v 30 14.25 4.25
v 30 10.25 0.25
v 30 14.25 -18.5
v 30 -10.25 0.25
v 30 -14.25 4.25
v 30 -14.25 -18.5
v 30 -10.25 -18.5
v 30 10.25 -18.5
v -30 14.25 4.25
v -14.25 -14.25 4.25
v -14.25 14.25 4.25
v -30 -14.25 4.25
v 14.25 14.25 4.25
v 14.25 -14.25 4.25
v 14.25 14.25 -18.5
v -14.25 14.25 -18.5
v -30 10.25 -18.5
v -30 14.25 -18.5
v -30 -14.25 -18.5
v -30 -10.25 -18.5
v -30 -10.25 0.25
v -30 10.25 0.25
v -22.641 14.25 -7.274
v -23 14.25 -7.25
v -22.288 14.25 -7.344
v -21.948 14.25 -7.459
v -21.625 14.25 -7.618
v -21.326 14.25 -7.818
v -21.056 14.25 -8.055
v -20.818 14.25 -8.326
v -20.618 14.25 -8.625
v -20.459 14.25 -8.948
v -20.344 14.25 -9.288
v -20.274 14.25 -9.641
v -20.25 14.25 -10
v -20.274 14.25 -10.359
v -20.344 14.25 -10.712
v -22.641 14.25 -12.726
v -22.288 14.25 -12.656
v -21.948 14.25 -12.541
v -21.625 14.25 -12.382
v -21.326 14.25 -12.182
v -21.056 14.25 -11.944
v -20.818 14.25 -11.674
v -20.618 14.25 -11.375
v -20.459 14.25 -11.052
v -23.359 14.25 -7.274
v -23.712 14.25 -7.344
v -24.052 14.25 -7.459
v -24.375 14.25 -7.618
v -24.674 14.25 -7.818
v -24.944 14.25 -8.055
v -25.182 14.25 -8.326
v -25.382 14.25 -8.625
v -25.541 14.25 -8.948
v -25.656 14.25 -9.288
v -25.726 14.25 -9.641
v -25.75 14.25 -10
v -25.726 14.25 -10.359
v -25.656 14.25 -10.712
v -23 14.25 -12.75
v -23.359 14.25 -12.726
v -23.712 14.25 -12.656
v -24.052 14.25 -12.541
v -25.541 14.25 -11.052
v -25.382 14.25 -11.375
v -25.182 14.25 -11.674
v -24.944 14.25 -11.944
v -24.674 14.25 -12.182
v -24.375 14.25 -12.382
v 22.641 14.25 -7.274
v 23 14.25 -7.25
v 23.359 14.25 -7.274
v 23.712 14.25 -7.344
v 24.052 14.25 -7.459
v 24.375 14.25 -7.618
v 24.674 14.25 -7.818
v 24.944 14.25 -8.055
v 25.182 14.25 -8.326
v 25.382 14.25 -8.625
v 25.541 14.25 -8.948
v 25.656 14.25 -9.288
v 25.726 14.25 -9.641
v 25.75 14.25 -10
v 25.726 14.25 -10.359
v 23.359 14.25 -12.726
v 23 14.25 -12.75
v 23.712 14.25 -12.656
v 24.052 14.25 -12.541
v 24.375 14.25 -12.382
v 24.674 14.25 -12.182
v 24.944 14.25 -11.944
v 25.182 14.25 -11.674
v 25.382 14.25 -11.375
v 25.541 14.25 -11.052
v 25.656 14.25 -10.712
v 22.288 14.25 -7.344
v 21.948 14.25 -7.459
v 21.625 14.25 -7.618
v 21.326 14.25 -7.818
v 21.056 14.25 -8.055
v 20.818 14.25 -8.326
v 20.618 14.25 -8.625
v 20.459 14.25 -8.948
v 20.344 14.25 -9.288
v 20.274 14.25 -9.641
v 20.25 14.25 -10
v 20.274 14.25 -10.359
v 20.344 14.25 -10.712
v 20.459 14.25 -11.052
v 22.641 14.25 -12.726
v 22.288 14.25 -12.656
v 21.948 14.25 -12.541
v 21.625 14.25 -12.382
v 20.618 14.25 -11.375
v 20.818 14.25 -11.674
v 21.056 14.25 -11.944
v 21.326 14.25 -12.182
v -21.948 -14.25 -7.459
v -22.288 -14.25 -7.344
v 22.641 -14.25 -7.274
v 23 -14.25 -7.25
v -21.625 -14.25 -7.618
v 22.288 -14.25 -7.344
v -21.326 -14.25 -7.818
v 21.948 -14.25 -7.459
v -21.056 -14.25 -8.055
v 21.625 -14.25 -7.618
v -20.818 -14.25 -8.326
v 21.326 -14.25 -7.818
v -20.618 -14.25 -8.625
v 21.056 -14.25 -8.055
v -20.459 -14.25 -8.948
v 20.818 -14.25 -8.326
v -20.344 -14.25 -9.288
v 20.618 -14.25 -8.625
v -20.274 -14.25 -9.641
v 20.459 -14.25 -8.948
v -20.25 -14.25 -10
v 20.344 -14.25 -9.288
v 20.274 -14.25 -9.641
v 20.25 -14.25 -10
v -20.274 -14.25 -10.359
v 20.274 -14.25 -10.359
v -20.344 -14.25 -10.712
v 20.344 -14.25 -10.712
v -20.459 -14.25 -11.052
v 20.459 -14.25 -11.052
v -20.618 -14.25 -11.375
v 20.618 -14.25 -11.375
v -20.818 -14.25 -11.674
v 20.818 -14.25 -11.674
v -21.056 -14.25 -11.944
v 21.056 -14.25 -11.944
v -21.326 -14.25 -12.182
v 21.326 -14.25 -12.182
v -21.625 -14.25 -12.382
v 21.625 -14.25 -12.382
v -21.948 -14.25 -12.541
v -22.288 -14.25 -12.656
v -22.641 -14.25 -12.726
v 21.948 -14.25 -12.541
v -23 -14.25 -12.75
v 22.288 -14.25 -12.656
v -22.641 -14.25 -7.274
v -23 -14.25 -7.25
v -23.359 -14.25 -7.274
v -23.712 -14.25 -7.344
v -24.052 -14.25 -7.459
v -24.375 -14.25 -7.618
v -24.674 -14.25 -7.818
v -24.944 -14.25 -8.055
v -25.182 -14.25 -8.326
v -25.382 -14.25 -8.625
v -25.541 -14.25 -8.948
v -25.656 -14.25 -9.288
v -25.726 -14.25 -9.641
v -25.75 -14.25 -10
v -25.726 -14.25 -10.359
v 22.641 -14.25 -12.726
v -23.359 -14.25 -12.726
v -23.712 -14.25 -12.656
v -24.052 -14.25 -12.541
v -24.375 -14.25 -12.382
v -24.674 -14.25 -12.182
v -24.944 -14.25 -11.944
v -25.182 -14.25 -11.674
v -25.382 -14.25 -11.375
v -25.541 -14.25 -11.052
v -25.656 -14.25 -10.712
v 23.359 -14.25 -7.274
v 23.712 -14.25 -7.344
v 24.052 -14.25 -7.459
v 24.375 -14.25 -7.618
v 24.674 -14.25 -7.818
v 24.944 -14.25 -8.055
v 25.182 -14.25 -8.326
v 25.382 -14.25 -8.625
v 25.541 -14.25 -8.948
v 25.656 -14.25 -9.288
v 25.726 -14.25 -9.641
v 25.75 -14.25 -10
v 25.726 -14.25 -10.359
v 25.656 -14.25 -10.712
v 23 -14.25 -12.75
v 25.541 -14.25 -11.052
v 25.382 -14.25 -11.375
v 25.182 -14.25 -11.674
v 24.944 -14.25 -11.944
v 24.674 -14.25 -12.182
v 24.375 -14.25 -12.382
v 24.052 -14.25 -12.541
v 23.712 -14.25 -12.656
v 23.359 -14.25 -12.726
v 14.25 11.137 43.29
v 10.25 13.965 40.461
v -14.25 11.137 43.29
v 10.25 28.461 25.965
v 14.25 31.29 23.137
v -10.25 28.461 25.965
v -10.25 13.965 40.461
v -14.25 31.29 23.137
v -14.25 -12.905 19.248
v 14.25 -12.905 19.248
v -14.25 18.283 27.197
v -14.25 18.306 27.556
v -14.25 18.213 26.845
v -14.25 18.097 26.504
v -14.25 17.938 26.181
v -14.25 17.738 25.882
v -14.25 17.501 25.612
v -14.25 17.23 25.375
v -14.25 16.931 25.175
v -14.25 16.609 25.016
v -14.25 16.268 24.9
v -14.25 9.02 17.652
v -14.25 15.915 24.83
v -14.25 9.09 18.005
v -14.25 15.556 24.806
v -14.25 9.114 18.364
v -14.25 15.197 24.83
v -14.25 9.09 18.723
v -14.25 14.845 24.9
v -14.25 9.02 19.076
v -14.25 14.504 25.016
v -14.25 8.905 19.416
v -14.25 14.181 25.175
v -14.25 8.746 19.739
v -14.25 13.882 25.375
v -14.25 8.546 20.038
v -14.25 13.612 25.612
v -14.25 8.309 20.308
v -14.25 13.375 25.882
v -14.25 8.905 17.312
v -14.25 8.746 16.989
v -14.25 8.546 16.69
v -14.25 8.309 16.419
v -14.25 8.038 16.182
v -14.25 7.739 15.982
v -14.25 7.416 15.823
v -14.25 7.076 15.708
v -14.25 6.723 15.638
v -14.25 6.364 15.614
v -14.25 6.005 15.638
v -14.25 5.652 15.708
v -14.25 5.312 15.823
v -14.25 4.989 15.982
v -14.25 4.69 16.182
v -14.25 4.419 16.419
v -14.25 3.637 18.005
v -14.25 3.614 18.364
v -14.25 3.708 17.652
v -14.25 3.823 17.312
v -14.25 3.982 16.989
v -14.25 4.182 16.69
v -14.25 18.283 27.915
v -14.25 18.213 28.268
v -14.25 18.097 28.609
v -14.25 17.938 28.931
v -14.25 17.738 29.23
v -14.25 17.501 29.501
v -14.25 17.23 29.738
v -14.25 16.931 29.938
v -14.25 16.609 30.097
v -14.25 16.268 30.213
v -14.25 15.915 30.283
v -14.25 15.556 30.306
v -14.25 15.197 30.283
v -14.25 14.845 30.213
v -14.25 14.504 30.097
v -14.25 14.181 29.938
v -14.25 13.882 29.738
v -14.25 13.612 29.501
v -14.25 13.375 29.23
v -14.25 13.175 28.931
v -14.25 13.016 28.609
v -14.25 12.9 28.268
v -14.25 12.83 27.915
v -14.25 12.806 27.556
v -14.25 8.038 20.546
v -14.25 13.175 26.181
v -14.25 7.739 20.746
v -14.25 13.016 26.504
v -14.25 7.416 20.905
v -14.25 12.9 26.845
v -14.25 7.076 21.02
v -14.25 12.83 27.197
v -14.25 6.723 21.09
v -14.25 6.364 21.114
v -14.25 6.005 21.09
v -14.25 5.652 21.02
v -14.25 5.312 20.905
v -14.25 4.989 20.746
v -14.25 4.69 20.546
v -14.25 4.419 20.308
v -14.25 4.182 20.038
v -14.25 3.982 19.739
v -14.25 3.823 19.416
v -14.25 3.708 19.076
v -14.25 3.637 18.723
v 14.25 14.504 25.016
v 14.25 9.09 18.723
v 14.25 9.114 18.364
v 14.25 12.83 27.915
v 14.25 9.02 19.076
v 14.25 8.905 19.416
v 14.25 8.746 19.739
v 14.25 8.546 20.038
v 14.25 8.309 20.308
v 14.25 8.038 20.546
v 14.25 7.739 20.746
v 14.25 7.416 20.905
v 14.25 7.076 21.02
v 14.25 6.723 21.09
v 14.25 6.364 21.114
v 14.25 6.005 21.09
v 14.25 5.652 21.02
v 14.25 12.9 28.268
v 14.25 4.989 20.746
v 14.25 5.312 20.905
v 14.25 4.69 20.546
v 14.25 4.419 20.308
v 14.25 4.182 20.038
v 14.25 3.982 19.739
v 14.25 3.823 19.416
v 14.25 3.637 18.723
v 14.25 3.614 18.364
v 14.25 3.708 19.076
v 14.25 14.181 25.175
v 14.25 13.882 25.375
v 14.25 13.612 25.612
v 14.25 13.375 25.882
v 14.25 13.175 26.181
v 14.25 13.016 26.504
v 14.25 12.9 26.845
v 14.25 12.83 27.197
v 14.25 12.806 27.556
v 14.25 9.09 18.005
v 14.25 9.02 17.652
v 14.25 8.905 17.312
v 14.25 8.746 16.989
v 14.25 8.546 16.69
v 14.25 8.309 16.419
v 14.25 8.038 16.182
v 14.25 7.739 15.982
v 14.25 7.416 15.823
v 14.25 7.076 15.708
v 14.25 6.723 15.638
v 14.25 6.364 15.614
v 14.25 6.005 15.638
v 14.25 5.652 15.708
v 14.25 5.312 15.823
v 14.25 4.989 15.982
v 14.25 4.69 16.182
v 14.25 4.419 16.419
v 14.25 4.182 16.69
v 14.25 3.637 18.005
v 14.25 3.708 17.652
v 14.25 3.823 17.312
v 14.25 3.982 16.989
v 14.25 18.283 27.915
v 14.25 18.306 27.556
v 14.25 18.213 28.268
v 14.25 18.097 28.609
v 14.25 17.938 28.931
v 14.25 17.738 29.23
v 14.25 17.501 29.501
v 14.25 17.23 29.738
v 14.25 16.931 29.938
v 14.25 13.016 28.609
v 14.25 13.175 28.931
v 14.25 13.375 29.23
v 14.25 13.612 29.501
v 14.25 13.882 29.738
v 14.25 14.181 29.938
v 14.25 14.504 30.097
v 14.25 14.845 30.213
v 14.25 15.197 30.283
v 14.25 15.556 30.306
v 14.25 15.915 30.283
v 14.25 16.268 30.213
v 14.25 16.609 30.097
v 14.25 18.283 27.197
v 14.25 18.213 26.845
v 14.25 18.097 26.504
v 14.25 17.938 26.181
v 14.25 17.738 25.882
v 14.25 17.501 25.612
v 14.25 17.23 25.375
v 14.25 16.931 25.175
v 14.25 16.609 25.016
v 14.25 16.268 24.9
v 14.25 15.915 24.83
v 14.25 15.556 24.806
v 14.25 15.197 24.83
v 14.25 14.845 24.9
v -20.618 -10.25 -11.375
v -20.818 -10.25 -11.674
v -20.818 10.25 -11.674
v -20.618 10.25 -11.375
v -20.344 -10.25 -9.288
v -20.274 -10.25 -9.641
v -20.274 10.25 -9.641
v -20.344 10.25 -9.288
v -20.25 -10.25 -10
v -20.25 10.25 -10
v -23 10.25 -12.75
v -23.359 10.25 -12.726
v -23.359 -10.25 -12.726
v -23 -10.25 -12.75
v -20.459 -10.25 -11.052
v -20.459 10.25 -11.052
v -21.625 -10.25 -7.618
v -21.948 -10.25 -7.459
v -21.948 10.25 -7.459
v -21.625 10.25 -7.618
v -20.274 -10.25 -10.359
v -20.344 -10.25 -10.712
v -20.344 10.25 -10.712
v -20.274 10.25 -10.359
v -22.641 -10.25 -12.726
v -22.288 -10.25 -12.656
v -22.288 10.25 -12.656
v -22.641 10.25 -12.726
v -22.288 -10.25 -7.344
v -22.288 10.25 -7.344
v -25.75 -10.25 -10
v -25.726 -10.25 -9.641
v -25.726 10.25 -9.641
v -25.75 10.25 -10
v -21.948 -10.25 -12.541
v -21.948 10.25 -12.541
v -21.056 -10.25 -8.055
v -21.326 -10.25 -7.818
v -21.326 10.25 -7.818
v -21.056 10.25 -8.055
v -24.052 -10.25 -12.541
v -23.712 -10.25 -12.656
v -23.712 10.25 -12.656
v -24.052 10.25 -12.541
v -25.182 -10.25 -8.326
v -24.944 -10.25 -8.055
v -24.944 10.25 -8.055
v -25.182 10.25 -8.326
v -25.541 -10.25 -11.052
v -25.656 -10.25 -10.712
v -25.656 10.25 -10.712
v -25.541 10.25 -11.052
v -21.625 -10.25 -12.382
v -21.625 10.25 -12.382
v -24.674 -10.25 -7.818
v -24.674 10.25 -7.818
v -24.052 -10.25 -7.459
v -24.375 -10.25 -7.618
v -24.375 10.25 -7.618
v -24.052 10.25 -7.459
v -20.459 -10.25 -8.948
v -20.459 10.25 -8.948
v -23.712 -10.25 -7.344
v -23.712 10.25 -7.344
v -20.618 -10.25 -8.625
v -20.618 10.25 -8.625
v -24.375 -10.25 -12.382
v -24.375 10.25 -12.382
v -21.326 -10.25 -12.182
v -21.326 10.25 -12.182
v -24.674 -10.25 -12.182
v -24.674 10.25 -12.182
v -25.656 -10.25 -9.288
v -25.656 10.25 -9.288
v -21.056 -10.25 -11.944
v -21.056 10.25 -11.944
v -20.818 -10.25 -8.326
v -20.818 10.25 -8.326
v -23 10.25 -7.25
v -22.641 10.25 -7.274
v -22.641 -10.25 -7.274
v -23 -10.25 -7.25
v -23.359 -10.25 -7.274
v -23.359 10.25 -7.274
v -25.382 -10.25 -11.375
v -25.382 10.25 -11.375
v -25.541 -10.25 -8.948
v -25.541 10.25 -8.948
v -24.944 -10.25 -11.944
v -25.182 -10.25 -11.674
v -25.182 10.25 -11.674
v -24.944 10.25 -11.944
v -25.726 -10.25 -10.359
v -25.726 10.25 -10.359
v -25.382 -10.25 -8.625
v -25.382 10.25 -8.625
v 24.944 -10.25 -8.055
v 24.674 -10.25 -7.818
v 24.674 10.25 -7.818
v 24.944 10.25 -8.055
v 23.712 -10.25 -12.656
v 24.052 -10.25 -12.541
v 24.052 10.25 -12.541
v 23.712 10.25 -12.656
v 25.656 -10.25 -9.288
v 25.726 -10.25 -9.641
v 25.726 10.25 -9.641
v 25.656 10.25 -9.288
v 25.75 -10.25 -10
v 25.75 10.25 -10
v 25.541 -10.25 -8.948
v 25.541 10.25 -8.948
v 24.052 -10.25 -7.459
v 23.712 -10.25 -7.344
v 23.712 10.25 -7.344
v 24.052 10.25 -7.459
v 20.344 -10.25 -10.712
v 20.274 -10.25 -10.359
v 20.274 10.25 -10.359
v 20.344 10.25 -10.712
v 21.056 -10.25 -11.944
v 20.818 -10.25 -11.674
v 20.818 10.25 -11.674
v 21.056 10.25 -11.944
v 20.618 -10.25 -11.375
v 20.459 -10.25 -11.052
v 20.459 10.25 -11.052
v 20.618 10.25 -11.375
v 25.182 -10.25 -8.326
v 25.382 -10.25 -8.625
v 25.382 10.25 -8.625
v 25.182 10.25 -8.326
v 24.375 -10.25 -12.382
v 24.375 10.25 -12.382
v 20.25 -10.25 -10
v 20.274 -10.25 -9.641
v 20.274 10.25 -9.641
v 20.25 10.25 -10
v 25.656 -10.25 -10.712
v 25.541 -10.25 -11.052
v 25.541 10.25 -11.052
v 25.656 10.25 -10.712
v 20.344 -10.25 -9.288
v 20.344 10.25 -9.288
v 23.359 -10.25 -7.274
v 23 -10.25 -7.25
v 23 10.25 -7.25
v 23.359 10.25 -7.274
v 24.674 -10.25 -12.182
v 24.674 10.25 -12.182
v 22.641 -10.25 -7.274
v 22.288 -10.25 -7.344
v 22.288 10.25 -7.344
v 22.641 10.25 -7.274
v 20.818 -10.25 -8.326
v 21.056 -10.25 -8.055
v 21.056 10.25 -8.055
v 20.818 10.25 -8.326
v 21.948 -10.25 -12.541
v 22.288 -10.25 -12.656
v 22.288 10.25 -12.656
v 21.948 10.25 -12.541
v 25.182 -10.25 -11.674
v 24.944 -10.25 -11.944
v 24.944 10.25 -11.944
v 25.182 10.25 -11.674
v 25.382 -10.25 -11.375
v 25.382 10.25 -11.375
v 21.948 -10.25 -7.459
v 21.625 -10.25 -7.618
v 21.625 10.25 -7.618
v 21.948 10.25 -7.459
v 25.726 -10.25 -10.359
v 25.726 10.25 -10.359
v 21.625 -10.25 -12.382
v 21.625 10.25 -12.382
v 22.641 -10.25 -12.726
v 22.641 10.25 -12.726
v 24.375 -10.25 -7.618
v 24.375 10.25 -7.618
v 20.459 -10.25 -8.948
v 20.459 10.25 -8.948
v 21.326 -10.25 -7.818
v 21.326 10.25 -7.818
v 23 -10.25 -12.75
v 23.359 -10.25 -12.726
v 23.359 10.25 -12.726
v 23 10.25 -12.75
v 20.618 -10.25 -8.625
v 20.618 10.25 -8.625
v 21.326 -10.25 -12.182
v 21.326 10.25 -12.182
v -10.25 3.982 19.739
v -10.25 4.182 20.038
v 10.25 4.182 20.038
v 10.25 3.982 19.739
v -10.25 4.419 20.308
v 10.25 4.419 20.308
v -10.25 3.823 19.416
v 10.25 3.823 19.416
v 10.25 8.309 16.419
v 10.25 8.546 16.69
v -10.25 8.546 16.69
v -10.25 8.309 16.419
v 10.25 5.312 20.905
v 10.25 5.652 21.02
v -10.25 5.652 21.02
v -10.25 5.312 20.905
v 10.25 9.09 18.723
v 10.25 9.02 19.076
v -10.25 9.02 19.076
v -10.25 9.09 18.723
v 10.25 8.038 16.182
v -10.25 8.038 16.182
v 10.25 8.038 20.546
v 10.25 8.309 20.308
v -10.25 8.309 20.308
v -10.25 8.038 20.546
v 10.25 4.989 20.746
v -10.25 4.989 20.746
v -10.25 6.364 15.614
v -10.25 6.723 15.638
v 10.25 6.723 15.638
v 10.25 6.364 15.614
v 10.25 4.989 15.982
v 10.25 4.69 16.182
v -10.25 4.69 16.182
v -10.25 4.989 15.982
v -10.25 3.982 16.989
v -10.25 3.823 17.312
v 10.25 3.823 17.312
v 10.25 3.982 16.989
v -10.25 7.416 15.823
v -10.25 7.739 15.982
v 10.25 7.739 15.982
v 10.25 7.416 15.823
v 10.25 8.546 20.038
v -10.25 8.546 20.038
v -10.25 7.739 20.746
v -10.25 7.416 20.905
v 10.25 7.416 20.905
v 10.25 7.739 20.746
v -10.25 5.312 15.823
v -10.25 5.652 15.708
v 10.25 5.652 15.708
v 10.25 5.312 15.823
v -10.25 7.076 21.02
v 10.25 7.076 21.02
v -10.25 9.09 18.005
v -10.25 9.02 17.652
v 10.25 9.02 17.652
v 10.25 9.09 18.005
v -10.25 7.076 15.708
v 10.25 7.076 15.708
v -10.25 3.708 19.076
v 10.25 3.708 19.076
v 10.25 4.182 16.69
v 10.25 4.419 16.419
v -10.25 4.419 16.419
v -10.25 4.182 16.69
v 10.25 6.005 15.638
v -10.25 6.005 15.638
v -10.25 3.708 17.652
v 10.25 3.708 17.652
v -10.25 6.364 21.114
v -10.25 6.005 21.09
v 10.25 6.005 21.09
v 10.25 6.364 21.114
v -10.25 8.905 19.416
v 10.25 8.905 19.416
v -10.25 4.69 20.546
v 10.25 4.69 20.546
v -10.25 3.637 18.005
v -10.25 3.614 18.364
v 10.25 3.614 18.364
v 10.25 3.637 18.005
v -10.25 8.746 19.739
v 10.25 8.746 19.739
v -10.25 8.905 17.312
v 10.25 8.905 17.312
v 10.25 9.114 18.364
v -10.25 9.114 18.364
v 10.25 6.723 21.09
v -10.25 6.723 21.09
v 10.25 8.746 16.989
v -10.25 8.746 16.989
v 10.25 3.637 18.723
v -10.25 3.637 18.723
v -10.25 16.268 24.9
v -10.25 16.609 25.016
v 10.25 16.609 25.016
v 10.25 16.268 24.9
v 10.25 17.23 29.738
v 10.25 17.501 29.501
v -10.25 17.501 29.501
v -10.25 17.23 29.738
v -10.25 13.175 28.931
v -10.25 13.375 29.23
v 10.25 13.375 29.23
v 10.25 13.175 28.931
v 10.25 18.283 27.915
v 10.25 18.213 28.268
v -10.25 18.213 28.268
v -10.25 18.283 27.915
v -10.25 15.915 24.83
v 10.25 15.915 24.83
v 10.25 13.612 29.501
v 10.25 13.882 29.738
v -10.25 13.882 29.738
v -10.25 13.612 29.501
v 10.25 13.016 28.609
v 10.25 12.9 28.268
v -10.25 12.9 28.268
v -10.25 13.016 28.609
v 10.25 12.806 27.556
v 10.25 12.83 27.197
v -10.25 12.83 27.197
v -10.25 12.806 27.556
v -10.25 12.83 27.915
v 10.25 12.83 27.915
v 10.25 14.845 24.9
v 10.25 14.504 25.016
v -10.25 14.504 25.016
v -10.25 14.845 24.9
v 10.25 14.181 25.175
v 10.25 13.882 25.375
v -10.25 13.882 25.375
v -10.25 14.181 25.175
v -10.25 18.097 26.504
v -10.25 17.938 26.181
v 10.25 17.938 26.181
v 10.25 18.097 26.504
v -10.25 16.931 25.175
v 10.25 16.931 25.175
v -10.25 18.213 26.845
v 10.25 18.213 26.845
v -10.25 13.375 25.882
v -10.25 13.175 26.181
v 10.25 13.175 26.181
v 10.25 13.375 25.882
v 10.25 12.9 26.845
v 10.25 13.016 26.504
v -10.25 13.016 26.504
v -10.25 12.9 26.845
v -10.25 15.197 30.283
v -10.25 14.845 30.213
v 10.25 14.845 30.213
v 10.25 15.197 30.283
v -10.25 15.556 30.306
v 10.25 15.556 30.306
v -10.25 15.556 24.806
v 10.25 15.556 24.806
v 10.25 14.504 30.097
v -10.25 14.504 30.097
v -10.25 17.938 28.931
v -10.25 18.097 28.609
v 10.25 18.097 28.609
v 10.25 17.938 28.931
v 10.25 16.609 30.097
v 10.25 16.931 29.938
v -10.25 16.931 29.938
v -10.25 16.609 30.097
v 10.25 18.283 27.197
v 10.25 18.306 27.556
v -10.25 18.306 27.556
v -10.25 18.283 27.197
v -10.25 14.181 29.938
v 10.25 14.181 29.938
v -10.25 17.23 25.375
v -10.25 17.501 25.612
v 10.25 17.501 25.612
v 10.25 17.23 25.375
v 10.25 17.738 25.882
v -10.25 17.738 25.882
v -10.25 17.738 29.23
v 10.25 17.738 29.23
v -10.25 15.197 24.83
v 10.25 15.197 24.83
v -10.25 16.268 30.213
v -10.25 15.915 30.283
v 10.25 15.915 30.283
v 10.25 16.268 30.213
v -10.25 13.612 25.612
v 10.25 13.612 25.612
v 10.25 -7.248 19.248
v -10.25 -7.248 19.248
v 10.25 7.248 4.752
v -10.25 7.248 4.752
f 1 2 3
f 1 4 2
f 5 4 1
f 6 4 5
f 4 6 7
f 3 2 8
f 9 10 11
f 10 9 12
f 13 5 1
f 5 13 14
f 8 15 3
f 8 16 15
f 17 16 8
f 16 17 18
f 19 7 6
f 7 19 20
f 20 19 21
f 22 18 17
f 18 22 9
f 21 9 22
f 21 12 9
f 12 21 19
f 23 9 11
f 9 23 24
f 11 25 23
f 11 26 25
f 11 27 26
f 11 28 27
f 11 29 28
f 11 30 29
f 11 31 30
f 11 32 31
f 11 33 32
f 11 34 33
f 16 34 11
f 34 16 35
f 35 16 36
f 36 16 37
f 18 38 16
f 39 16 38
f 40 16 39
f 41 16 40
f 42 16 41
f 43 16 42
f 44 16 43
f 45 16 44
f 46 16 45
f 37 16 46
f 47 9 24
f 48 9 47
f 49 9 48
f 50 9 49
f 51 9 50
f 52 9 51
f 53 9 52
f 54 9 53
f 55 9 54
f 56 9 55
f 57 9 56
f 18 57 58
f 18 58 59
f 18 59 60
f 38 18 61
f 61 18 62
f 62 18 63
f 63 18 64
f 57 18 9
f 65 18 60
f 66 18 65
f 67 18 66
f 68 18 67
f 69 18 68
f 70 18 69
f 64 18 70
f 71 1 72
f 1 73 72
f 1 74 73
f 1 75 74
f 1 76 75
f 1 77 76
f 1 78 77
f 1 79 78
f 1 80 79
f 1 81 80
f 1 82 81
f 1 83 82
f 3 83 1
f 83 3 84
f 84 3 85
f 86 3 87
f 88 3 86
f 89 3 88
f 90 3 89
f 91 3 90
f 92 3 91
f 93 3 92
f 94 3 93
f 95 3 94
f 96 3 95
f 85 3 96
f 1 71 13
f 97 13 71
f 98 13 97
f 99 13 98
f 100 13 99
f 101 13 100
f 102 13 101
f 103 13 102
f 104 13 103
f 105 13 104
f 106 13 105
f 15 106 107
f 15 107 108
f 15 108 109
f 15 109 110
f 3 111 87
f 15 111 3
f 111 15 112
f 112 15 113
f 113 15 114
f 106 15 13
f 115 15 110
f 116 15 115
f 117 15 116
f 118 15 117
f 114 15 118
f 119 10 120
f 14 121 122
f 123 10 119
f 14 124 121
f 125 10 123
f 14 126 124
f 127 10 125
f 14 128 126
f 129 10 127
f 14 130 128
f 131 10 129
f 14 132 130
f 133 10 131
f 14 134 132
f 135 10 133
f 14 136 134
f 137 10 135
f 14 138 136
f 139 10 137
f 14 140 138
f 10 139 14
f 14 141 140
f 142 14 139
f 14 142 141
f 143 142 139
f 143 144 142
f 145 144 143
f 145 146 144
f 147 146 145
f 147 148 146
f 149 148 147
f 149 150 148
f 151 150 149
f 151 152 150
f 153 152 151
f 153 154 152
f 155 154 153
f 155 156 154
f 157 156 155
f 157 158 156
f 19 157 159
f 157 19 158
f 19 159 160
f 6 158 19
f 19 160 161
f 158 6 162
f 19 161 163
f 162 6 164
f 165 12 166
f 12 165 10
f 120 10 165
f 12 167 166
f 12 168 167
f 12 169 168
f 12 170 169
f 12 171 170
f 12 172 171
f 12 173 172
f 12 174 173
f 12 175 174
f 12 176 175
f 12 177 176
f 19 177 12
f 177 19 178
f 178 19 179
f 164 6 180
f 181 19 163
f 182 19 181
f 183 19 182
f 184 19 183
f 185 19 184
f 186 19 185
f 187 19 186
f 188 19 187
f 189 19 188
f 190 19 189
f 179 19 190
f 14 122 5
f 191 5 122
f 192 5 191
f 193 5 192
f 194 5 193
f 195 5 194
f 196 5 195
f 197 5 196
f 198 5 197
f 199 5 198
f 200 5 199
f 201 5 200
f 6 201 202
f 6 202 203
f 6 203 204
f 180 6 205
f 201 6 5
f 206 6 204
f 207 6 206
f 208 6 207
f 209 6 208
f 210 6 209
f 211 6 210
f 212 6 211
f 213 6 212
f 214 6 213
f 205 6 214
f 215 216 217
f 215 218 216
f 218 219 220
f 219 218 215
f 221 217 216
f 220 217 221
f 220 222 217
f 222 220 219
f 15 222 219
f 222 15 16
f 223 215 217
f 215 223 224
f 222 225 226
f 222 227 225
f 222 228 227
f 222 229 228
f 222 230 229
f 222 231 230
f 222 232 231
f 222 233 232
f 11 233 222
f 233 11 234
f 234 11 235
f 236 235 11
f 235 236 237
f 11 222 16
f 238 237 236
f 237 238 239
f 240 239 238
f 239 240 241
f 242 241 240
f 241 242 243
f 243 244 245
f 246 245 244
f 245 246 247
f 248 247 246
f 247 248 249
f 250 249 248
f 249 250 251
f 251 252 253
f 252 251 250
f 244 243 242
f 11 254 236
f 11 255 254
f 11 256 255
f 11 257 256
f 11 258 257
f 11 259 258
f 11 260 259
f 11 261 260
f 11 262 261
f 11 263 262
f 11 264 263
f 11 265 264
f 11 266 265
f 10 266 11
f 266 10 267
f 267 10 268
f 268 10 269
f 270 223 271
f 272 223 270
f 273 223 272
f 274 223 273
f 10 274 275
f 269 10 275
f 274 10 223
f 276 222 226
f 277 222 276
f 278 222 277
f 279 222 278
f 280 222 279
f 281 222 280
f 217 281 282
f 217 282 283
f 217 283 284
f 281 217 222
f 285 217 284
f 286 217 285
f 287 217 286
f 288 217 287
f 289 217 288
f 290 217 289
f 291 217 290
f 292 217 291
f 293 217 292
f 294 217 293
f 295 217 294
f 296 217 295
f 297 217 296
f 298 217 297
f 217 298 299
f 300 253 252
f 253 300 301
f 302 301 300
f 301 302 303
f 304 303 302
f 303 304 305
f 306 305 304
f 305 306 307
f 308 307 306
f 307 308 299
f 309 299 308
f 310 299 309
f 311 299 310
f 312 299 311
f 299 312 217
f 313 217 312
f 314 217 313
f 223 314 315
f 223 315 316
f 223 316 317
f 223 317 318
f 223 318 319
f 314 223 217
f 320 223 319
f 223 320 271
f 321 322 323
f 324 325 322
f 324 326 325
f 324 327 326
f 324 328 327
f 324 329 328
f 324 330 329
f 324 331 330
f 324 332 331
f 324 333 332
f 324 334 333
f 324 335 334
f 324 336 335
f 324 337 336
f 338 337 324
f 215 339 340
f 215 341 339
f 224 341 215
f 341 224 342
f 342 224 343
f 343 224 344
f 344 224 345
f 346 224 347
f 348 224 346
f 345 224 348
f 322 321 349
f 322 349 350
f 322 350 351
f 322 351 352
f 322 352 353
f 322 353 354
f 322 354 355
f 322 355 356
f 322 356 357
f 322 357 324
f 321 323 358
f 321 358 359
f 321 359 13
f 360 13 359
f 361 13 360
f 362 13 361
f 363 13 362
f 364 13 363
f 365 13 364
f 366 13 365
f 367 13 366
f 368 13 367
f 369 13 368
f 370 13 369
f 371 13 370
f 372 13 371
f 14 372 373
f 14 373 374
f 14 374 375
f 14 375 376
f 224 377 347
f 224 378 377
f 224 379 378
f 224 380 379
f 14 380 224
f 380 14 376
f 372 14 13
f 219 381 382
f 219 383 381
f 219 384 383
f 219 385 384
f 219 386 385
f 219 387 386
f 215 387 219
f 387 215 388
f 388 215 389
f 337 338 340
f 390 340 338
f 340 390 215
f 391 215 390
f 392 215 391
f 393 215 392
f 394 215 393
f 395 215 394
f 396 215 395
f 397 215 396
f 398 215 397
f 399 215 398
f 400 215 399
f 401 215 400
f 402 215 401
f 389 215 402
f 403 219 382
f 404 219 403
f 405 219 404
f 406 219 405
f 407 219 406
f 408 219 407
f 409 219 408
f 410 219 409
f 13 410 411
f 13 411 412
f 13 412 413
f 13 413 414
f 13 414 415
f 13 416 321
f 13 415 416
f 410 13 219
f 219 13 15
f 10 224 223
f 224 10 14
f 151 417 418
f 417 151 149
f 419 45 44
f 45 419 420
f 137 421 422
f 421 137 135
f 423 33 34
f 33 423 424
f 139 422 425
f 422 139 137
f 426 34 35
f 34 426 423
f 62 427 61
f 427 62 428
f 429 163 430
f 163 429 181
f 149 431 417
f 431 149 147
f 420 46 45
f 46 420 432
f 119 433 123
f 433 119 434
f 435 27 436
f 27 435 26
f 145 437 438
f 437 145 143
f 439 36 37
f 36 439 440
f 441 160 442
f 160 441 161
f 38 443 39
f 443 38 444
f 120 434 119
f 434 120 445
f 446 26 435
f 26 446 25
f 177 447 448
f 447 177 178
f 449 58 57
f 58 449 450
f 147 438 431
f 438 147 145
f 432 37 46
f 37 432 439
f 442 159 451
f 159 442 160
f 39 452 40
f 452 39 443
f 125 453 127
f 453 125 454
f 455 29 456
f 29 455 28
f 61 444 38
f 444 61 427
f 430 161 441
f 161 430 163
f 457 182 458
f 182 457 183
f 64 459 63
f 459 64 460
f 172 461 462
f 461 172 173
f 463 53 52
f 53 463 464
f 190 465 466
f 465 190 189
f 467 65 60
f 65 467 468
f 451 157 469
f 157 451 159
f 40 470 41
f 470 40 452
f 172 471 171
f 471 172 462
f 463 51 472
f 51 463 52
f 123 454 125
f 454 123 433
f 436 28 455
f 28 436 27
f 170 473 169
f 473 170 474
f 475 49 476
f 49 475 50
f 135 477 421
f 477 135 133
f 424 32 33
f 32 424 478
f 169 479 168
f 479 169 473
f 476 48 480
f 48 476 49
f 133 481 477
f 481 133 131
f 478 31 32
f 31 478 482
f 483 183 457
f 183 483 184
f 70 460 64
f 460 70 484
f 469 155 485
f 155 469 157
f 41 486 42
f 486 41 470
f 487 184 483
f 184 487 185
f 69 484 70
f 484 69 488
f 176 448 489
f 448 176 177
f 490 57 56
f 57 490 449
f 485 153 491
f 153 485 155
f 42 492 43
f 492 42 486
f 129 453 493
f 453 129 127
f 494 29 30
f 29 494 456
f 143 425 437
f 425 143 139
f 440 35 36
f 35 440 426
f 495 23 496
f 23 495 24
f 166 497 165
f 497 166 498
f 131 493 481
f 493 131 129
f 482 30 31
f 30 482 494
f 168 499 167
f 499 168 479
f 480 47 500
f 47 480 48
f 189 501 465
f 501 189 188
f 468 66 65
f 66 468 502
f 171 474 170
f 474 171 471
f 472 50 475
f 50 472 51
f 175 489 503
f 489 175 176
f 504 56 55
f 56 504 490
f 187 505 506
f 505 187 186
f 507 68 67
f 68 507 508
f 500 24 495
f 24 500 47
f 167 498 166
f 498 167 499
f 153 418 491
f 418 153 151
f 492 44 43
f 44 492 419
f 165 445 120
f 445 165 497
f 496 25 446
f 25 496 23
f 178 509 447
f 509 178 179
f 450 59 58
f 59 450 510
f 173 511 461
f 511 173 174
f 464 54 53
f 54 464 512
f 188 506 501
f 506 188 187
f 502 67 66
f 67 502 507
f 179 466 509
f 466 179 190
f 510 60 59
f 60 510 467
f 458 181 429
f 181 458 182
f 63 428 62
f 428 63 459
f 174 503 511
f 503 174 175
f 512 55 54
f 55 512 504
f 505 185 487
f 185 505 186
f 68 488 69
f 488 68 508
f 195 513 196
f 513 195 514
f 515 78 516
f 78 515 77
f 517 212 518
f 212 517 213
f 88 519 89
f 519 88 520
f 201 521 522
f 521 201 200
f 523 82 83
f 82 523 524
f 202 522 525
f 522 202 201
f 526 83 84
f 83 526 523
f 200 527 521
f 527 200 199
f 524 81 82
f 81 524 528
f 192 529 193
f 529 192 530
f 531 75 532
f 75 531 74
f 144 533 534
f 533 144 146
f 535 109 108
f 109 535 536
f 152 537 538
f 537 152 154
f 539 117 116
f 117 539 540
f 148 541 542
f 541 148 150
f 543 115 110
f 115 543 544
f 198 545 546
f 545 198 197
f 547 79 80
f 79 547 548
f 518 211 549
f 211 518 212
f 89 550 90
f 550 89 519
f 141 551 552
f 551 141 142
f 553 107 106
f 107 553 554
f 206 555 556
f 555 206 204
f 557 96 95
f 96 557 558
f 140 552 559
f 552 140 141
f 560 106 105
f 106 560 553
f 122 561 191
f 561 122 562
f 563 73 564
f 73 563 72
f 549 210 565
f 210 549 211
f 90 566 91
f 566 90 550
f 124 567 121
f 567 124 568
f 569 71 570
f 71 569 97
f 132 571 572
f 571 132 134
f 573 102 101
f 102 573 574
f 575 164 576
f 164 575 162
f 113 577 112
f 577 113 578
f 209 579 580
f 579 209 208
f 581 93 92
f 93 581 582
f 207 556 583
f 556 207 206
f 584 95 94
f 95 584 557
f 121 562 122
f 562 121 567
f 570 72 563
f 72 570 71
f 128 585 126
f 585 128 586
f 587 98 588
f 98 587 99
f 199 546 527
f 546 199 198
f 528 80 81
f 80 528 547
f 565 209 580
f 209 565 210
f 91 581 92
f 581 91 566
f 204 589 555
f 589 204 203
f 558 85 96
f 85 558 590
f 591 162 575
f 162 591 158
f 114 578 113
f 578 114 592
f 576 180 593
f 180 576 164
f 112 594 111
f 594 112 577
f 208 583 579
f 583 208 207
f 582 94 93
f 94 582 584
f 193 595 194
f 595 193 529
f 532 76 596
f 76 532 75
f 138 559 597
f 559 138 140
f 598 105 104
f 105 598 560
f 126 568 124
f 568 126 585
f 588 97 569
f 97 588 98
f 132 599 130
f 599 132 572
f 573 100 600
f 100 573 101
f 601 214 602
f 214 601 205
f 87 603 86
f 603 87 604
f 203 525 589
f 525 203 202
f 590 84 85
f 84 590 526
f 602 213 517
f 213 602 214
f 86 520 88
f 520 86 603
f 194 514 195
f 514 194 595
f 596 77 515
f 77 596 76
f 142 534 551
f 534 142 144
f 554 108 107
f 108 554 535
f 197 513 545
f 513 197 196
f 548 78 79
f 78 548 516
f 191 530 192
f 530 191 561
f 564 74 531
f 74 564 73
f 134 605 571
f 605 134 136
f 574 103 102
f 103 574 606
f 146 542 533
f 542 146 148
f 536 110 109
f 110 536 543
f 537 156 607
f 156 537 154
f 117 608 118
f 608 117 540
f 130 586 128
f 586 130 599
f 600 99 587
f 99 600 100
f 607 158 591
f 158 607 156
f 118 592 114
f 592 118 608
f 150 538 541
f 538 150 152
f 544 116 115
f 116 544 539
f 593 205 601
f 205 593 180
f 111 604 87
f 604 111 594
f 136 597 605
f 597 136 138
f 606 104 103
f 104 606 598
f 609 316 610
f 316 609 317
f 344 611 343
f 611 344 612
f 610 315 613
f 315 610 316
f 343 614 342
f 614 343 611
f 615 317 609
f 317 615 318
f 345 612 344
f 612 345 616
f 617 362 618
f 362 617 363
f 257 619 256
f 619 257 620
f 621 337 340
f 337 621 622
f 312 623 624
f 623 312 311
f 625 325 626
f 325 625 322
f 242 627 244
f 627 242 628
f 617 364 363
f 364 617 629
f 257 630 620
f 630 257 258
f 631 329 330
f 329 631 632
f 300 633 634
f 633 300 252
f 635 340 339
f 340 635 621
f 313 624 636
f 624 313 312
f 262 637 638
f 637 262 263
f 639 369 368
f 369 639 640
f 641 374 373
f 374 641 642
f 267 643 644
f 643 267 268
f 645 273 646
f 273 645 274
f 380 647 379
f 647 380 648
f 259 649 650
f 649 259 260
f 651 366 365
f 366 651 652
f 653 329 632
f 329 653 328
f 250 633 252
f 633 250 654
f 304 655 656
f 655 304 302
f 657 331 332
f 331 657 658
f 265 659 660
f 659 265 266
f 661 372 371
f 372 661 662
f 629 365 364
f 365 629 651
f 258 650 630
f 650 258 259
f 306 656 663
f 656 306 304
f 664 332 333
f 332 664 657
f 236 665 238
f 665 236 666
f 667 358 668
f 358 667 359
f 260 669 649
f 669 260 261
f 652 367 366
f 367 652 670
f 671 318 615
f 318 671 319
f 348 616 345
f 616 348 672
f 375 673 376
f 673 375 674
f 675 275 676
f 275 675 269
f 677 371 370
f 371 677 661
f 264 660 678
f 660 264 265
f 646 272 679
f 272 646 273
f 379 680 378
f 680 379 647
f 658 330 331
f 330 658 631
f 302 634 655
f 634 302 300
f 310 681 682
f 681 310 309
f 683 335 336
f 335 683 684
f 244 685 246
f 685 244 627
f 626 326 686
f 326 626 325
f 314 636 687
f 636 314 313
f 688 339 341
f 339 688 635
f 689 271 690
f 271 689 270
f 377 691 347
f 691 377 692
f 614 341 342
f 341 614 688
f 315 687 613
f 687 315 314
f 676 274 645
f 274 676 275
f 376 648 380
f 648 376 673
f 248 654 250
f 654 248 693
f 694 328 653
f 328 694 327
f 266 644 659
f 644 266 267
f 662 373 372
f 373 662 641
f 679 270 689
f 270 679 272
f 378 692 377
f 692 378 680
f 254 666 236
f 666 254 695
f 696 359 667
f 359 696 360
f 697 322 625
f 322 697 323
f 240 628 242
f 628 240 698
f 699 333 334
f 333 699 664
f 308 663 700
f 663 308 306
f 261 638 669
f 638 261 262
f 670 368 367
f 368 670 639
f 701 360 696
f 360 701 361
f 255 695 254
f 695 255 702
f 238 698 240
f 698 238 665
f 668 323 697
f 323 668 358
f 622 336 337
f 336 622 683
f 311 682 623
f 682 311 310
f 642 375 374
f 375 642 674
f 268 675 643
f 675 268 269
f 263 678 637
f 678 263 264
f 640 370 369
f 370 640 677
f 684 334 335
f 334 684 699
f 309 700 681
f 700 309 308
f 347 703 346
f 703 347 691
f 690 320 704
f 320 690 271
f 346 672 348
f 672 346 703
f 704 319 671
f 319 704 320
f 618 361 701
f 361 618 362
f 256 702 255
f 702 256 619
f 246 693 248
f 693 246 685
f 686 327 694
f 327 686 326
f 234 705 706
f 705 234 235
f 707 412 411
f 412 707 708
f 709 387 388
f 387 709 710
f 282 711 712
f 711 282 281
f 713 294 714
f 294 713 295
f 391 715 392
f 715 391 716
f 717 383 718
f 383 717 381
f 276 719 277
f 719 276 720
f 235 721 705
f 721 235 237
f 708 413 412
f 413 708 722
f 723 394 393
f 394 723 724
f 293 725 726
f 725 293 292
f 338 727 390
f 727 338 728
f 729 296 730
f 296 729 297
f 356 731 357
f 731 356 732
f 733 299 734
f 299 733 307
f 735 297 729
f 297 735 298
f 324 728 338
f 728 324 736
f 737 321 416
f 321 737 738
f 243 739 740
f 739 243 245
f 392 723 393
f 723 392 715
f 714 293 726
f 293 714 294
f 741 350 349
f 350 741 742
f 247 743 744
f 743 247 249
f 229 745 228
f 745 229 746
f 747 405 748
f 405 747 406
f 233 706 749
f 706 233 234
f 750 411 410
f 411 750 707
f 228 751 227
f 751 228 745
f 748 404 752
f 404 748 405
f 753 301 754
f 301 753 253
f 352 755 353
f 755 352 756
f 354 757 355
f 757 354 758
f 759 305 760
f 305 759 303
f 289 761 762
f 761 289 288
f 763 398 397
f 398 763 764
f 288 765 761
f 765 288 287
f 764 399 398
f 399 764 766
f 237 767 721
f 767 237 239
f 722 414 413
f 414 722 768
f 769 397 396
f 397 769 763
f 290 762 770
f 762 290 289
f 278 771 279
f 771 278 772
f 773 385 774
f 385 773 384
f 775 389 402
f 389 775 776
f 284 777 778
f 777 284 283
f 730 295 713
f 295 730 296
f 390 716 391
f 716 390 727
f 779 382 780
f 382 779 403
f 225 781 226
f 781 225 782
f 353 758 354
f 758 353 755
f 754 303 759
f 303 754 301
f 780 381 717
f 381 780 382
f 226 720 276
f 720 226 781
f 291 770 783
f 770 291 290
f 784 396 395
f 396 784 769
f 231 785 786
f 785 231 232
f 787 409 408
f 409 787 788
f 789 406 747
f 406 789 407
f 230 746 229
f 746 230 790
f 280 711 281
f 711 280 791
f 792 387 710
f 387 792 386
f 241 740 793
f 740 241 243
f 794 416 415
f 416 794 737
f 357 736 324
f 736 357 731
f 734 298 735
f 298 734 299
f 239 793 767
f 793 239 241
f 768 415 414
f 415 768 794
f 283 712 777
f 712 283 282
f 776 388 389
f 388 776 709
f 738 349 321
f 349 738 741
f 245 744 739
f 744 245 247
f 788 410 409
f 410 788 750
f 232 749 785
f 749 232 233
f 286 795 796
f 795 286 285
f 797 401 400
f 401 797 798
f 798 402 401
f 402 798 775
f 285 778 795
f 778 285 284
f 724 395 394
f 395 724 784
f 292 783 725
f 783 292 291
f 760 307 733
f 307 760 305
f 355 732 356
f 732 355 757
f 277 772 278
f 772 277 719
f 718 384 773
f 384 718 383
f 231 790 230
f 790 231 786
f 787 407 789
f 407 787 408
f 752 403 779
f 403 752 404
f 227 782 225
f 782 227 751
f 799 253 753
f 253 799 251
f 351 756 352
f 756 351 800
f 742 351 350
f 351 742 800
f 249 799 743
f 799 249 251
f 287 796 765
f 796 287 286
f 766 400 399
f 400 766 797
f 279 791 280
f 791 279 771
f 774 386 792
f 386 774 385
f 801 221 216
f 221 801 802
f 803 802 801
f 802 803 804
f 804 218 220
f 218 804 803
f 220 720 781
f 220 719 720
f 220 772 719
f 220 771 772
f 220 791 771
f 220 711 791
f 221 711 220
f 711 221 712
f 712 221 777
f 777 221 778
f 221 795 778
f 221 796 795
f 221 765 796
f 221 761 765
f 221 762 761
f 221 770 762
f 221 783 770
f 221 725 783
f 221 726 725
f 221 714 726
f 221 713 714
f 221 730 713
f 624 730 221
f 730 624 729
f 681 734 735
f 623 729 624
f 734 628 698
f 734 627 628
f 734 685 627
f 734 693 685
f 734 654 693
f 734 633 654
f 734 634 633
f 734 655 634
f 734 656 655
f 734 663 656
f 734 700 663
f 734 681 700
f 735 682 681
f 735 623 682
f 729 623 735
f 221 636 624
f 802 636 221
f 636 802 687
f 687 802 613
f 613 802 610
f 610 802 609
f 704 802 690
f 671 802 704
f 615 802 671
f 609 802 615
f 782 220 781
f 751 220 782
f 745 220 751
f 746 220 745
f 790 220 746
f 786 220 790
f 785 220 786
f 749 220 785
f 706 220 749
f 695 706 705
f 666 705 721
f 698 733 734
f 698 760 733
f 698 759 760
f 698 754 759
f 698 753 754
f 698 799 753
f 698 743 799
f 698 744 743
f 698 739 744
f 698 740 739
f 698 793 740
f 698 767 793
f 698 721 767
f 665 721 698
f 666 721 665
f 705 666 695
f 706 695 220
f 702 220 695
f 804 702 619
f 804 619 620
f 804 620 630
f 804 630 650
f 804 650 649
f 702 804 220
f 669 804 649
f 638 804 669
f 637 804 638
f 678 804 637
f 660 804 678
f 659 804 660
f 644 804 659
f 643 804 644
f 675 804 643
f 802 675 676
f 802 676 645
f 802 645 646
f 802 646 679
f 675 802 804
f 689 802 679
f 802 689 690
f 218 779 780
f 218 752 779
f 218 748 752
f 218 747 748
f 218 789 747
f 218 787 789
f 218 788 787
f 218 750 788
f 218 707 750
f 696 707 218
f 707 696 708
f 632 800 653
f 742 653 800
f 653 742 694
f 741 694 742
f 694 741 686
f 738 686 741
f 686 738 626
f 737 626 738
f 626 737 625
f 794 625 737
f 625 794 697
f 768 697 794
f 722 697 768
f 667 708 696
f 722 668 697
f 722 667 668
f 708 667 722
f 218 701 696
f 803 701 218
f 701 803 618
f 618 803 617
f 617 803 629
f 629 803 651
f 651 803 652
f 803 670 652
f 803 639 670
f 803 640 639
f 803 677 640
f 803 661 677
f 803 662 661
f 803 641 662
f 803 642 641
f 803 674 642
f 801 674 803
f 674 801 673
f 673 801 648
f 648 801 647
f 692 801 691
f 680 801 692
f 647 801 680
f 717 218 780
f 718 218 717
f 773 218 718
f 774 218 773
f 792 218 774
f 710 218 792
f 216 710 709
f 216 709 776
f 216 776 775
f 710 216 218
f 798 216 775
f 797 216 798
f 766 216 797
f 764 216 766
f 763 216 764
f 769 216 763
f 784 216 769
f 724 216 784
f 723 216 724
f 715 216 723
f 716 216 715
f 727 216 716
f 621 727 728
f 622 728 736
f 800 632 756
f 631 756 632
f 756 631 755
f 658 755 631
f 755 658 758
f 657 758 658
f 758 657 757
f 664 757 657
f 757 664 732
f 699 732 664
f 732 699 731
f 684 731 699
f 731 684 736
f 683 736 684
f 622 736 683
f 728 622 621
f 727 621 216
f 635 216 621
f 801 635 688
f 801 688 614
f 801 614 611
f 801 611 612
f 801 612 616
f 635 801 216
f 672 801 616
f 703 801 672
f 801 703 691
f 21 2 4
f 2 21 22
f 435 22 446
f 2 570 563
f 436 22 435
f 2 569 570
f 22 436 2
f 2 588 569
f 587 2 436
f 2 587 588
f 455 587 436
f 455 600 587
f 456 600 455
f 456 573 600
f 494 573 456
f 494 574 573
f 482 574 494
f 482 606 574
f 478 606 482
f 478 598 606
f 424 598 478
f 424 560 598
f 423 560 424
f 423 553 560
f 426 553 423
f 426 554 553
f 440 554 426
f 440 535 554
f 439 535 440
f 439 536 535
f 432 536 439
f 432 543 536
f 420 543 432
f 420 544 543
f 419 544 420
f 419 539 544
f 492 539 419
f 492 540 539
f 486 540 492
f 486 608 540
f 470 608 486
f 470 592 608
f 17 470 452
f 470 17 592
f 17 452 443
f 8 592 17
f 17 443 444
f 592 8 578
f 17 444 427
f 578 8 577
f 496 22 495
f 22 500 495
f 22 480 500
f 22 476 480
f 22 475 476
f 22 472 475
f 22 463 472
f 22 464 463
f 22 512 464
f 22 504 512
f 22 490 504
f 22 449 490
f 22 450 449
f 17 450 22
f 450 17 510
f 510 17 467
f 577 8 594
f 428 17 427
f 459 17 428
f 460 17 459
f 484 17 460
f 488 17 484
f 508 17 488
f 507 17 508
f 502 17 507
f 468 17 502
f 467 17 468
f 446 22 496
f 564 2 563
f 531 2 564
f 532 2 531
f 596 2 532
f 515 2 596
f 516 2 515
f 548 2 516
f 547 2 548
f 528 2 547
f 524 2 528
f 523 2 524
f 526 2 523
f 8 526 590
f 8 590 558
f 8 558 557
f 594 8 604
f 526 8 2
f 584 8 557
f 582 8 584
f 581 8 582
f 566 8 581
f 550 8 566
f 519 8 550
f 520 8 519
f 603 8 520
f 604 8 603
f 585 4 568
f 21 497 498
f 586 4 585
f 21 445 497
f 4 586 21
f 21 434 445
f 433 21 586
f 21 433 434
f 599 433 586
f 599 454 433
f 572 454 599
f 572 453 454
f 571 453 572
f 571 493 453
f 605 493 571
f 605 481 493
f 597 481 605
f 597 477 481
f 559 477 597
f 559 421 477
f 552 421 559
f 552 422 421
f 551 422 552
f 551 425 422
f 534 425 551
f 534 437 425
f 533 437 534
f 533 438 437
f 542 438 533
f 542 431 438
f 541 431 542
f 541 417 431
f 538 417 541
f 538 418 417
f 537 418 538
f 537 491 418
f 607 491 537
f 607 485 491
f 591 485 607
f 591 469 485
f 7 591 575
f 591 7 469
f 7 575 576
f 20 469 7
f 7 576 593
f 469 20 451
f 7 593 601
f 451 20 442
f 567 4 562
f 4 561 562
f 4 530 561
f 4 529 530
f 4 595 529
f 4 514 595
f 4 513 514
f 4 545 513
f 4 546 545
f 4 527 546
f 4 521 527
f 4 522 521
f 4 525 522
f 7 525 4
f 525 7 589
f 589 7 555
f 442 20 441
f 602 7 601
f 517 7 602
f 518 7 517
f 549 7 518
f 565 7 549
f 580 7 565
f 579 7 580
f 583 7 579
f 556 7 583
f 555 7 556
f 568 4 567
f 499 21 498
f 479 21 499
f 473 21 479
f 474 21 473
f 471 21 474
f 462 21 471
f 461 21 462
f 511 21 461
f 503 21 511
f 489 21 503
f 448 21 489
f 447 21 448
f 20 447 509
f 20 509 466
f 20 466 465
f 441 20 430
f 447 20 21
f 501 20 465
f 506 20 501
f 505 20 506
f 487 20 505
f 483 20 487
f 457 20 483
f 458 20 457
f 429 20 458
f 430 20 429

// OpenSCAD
// file: common-2020.scad
// Shared socket geometry for the scanner stand brackets.
// A socket holds the end of a 2020 profile running down -Z from its closed end at z=0.

$fn = 48;

profile     = 20;
clearance   = 0.25;   // per side; raise if the profile will not slide in
wall        = 4;
depth       = 30;     // how far a profile slides into a socket
screw_d     = 5.5;
screw_depth = [9, 22];

inner = profile + 2 * clearance;
outer = inner + 2 * wall;
far   = 400;          // long enough to clear anything a hull adds in a profile's path

module socket_body() translate([-outer / 2, -outer / 2, -depth]) cube([outer, outer, depth + wall]);

module socket_void() translate([-inner / 2, -inner / 2, -far]) cube([inner, inner, far]);

// M5 holes through the front and back walls, into T-nuts in the profile's slots.
module socket_screws(depths = screw_depth)
    for (d = depths)
        translate([0, 0, -d]) rotate([90, 0, 0]) cylinder(d = screw_d, h = outer + 2, center = true);
// main file
// Angled T-bracket for the scanner stand.
// Sits on the base 2020 profile lying on the table and holds the post so it rises
// at post_rise above the base, leaning sideways across it (90 degrees to the base
// when seen from above).
// Open underneath, so the base profile still lies flat on the table.
//
// Hardware: 8x M5x10 button head + 8x M5 T-nuts (slot 6), 2 per side per profile.
// Print lying on the saddle side wall the post leans away from (-Y), so the post
// socket points up at 45 degrees; PETG, 4+ walls, 40% infill, no supports.

include <common-2020.scad>

post_rise    = 45;          // angle of the post above the base
post_offset  = [0, 0, 12];  // where the post's end sits above the base's top face
saddle       = [-30, 30];   // saddle extent along the base
saddle_screws = [-23, 23];  // where the base is screwed down, clear of the post
table_gap    = 1.5;         // side walls stop this far above the table

// Base profile runs along X, top face at z=0, bottom face on the table at z=-profile.
module saddle_body(from = saddle[0], to = saddle[1])
    translate([from, -outer / 2, -profile + table_gap])
        cube([to - from, outer, profile - table_gap + clearance + wall]);

module base_void() translate([-far, -inner / 2, -far]) cube([2 * far, inner, far + clearance]);

module saddle_screws()
    for (x = saddle_screws)
        translate([x, 0, -profile / 2]) rotate([90, 0, 0]) cylinder(d = screw_d, h = outer + 2, center = true);

// Post socket, tilted so its -Z points up and across the base toward +Y.
// Its screws then run along X, through the faces left clear beside the saddle.
module post_frame() translate(post_offset) rotate([0, 0, 90]) rotate([0, -(90 + post_rise), 0]) children();

difference() {
    union() {
        saddle_body();
        hull() {
            saddle_body(-outer / 2, outer / 2);
            post_frame() socket_body();
        }
    }
    base_void();
    saddle_screws();
    post_frame() { socket_void(); socket_screws(); }
}
